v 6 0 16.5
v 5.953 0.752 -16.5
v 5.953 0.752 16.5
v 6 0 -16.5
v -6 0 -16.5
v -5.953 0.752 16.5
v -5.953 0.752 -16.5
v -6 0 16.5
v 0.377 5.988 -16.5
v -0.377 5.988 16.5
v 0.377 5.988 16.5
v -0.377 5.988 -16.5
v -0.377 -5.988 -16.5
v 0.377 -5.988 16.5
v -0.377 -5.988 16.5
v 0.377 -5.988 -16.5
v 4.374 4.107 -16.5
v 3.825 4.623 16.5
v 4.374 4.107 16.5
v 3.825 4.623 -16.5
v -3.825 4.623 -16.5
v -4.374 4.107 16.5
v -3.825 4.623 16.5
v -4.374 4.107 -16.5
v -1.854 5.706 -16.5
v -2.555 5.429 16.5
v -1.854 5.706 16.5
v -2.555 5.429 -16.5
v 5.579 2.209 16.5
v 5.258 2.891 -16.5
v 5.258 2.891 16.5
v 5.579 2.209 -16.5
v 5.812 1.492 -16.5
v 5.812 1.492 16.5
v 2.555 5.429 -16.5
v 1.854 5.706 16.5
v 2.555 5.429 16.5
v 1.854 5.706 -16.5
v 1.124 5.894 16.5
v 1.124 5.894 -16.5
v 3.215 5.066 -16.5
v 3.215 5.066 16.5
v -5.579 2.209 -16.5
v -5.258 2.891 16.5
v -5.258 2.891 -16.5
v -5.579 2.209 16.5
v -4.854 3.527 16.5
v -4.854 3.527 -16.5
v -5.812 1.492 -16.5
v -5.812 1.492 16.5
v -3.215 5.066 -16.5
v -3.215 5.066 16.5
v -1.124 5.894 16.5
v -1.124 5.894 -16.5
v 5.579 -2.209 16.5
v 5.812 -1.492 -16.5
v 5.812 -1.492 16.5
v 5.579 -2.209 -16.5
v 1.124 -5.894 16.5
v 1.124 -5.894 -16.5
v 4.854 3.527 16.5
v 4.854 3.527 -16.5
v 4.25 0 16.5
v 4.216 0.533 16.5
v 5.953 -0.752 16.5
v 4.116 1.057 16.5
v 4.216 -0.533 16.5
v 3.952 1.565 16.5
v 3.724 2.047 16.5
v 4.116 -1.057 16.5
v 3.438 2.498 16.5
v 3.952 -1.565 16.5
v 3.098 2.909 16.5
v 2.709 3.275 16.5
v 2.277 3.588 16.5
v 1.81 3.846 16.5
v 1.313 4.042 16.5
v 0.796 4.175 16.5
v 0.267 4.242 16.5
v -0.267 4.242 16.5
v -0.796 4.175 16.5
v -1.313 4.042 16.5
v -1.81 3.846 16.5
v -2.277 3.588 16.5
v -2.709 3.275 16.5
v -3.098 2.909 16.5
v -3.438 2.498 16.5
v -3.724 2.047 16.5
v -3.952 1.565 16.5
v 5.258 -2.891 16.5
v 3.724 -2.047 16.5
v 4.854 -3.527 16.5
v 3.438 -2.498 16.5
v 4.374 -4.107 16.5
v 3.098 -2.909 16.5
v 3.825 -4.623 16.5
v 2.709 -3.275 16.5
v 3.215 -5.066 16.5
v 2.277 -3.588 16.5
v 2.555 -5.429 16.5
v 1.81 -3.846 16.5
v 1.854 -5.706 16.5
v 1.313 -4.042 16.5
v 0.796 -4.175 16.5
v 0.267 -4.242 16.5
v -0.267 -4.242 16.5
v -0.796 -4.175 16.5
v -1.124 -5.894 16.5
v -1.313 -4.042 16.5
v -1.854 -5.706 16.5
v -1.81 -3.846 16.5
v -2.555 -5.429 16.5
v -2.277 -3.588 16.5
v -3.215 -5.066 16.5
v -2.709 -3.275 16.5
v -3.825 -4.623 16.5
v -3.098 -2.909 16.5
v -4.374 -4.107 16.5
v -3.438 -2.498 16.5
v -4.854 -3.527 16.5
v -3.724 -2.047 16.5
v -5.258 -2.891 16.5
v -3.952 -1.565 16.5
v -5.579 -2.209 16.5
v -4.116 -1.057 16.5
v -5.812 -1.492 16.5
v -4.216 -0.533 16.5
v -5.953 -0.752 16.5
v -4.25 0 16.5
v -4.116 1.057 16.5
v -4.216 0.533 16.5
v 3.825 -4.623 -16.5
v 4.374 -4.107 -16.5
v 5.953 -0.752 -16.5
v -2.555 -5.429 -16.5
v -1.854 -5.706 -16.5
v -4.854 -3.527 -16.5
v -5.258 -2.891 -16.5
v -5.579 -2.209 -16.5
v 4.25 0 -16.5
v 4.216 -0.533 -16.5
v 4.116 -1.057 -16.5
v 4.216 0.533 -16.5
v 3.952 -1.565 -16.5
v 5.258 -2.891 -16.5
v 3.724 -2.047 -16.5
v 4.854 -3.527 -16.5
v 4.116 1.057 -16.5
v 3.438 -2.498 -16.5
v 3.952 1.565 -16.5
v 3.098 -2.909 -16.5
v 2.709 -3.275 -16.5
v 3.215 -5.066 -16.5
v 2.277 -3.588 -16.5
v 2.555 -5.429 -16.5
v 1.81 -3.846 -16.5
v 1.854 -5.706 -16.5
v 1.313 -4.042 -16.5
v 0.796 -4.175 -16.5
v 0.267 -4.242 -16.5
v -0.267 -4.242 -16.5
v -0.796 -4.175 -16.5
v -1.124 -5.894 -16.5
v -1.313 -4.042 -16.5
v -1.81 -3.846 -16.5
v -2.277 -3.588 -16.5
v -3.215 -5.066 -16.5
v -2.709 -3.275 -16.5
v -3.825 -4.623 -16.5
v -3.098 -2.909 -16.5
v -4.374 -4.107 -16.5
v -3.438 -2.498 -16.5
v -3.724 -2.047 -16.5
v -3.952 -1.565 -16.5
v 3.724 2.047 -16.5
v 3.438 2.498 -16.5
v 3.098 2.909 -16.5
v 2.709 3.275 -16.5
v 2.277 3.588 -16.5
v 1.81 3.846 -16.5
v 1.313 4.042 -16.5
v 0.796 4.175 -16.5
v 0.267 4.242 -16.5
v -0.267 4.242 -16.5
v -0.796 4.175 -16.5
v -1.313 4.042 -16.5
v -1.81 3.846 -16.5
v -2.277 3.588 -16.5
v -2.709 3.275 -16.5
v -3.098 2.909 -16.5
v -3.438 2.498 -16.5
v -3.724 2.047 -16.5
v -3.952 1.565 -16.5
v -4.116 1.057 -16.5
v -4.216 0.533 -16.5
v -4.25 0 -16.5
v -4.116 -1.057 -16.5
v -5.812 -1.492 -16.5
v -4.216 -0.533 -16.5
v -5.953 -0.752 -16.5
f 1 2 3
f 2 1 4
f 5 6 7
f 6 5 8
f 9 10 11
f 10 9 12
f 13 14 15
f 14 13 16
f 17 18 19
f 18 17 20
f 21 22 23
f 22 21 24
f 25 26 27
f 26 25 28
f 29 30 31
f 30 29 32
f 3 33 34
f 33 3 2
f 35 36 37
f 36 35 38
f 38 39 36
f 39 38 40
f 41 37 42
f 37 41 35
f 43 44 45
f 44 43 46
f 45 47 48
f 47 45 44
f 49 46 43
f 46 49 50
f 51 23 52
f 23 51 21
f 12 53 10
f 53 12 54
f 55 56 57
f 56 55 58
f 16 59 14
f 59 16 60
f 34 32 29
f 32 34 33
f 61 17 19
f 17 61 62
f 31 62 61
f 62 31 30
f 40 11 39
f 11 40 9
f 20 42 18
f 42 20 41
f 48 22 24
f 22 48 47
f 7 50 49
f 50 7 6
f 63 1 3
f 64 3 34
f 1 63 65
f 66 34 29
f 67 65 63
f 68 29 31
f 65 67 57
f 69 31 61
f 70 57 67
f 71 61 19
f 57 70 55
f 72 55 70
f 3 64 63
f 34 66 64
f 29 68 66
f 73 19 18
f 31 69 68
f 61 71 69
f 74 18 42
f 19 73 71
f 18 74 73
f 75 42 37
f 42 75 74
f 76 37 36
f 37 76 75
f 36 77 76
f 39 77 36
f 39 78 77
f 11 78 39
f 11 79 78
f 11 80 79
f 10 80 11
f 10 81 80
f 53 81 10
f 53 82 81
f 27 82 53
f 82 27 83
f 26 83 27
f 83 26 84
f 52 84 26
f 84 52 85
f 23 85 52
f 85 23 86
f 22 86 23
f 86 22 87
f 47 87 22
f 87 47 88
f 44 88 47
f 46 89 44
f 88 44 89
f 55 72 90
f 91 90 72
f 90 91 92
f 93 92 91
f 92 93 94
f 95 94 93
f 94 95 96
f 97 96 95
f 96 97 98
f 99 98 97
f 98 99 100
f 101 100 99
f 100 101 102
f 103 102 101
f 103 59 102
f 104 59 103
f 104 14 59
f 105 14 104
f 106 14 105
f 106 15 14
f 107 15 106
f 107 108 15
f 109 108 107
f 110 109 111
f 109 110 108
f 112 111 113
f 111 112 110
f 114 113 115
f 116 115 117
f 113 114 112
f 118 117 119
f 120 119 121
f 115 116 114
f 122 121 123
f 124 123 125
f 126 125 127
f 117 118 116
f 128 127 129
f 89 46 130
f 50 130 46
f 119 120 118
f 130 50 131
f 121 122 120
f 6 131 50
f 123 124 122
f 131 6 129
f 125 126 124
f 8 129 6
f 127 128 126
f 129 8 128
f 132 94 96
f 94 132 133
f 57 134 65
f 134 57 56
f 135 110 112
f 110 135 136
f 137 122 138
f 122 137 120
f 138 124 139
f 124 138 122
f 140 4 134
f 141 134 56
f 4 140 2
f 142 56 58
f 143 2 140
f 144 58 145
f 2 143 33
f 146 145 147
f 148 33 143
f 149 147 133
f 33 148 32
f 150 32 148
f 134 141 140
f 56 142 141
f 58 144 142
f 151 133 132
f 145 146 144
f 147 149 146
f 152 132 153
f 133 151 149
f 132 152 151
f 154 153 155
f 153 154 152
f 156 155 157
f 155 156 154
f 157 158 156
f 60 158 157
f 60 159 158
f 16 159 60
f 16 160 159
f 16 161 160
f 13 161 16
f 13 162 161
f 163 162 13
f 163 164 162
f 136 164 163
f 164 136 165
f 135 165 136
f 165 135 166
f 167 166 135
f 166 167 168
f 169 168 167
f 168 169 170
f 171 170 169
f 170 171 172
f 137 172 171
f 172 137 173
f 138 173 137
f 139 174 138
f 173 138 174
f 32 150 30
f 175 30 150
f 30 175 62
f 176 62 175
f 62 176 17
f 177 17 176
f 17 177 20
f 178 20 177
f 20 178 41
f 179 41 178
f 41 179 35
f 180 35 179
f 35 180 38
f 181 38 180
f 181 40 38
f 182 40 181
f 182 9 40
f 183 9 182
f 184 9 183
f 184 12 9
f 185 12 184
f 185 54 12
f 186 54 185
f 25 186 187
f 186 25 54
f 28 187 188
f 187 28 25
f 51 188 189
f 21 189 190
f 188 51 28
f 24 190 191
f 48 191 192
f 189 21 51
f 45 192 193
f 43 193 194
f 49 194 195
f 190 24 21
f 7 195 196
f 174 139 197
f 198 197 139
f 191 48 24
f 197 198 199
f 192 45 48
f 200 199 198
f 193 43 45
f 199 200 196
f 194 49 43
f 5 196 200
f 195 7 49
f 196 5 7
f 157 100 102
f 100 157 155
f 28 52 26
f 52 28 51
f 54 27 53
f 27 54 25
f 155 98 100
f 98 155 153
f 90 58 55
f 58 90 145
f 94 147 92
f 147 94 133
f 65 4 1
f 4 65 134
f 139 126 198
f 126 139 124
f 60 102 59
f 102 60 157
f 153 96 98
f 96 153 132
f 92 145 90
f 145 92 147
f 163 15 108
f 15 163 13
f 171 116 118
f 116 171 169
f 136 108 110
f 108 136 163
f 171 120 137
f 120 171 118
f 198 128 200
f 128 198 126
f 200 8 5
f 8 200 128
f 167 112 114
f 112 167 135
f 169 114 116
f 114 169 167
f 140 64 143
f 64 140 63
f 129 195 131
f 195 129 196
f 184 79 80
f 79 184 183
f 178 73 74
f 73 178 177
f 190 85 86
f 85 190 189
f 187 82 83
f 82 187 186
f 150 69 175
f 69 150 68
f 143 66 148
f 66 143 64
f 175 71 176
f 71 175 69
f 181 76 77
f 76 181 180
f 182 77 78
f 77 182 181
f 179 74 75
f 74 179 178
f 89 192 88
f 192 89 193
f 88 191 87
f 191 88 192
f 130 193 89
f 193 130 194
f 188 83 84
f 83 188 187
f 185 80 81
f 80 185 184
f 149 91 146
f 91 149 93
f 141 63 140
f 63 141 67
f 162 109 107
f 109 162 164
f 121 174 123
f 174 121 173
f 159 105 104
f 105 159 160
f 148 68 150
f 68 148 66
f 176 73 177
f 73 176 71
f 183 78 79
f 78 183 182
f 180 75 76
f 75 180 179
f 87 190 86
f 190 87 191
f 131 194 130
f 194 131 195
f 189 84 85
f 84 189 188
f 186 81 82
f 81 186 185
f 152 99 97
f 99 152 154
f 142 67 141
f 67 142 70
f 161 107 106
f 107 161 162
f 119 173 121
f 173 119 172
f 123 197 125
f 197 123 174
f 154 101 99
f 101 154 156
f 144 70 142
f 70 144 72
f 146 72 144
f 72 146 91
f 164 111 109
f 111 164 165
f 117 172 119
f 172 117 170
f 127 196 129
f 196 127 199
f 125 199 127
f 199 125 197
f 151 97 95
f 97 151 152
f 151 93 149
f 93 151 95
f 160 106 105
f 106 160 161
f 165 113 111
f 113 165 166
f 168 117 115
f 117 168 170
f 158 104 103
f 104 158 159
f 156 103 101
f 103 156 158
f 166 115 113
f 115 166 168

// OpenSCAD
$fn = 50;


difference() {
	union() {
		translate(v = [0, 0, -16.5000000000]) {
			cylinder(h = 33, r = 6.0000000000);
		}
	}
	union() {
		translate(v = [0, 0, -100.0000000000]) {
			cylinder(h = 200, r = 4.2500000000);
		}
	}
}
